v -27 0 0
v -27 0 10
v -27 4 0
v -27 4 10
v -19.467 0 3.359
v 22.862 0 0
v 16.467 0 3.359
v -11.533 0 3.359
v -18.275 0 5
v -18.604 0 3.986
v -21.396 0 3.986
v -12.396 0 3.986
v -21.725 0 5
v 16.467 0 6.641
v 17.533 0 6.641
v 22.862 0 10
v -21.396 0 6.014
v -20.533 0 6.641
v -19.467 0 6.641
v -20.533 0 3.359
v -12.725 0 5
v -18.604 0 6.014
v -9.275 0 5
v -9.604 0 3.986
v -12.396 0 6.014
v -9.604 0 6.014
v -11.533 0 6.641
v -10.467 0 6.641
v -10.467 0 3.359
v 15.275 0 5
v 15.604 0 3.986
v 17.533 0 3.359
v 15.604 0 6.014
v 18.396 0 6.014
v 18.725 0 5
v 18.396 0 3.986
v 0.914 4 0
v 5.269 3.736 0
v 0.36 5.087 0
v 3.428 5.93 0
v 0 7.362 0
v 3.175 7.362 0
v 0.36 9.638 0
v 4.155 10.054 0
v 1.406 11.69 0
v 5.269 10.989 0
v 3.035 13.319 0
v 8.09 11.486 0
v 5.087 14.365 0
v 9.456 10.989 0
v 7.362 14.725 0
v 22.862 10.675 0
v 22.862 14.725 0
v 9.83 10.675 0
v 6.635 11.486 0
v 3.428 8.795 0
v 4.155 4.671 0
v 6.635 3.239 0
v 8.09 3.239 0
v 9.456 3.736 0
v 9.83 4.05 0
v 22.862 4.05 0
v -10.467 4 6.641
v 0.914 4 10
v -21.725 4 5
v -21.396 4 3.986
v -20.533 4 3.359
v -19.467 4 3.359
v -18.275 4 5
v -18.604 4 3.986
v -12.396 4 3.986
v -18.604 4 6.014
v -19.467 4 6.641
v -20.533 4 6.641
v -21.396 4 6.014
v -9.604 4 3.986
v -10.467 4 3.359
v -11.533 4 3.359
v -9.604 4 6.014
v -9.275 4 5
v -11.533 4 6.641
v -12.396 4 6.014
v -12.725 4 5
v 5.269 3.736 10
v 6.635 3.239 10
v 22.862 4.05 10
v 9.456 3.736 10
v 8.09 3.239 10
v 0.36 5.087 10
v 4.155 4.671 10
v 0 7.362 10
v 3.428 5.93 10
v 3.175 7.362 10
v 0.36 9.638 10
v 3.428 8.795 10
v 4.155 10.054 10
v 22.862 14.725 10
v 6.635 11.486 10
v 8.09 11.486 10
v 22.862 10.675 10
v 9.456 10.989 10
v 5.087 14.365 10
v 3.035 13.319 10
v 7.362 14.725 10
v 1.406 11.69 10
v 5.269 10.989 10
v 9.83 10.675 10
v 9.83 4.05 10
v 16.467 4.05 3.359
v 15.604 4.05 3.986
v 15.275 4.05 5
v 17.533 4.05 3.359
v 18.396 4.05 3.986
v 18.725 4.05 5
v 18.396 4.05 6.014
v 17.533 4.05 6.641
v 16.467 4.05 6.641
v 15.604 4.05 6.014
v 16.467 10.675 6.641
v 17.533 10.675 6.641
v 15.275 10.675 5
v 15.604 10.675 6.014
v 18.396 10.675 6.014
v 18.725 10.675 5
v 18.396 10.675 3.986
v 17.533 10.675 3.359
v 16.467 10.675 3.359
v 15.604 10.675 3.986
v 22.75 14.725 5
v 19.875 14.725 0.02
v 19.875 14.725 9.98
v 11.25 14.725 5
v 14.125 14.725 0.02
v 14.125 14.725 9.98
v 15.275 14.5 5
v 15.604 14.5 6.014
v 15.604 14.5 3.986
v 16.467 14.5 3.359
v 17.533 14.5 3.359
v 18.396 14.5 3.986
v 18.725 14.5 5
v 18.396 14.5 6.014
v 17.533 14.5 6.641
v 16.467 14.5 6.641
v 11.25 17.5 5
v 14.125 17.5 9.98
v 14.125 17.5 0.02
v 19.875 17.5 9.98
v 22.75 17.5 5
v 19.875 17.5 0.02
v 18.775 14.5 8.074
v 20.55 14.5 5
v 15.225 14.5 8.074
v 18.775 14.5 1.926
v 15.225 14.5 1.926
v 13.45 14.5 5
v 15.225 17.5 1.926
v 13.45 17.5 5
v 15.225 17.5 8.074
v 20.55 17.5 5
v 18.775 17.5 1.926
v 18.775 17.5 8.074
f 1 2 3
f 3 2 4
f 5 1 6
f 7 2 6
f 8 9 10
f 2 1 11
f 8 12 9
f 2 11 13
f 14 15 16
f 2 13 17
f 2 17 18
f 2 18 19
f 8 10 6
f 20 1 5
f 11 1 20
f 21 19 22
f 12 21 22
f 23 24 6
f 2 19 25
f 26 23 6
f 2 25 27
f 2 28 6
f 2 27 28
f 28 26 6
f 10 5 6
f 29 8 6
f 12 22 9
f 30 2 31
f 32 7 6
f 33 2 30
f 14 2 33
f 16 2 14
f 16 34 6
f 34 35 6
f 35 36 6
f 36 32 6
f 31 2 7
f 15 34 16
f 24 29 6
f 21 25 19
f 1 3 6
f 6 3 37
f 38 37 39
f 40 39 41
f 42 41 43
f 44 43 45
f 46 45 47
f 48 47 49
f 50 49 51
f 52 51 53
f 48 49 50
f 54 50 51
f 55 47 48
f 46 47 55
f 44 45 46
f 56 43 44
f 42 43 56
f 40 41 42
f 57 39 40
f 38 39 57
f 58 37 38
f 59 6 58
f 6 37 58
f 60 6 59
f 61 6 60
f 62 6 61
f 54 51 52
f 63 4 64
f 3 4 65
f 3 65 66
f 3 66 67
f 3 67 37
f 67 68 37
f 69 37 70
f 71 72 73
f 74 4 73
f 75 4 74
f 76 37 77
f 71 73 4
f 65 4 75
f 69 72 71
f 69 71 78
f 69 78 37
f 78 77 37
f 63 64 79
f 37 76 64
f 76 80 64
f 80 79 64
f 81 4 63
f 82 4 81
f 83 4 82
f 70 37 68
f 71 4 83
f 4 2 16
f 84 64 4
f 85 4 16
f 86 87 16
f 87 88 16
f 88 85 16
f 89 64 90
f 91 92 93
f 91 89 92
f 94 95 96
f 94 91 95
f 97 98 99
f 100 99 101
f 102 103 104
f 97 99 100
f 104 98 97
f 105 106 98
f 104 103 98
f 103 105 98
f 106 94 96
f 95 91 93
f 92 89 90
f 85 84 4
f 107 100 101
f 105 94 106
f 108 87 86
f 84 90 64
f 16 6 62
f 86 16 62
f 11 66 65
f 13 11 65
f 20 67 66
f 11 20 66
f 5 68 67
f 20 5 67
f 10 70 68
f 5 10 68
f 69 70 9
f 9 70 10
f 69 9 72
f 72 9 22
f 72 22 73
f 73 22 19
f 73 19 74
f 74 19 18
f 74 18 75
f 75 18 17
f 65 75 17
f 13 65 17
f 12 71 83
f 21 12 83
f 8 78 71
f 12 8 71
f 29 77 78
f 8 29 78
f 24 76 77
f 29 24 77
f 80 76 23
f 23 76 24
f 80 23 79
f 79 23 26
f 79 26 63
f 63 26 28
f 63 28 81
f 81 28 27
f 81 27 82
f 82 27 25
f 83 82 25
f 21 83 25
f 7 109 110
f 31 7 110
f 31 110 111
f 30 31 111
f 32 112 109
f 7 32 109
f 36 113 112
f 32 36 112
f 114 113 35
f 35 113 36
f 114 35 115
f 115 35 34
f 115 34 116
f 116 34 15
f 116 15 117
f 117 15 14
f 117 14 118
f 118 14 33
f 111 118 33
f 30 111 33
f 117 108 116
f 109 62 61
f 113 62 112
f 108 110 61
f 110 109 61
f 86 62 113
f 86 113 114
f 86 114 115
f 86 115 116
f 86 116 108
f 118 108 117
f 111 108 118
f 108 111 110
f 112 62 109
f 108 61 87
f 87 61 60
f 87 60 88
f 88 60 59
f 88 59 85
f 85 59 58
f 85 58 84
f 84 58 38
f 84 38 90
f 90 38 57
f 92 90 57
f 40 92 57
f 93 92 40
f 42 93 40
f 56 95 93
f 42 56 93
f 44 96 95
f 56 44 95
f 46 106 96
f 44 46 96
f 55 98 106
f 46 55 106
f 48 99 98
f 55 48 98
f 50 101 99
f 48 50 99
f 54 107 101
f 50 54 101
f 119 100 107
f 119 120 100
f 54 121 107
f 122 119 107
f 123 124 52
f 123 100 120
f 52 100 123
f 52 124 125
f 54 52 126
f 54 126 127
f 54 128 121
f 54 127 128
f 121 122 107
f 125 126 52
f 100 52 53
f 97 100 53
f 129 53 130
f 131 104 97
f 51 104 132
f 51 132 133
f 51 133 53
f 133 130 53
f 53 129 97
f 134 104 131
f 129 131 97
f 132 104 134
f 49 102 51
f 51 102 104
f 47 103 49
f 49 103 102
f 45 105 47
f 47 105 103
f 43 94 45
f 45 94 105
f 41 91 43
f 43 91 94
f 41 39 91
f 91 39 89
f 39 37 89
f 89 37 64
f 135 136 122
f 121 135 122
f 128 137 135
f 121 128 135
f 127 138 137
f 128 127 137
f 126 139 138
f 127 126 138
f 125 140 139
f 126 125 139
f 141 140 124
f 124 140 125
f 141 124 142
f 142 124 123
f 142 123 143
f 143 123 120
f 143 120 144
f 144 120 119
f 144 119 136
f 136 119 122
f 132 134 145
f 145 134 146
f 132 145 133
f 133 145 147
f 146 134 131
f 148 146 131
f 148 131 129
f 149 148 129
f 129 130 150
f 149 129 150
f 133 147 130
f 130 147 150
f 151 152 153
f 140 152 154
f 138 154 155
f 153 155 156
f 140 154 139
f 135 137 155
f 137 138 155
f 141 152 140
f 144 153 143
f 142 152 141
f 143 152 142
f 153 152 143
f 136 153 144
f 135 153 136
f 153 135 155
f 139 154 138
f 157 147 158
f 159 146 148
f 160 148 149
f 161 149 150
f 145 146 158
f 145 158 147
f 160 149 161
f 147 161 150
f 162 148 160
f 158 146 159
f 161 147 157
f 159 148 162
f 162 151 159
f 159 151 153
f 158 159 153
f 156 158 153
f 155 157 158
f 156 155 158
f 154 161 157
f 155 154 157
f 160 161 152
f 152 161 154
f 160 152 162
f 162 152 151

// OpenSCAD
// file: functions.scad
// PRUSA Mendel  
// Functions used in many files
// GNU GPL v3
// Josef Průša
// josefprusa@me.com
// prusadjs.cz
// http://www.reprap.org/wiki/Prusa_Mendel
// http://github.com/prusajr/PrusaMendel


module nut(d,h,horizontal=true){
cornerdiameter =  (d / 2) / cos (180 / 6);
cylinder(h = h, r = cornerdiameter, $fn = 6);
if(horizontal){
for(i = [1:6]){
	rotate([0,0,60*i]) translate([-cornerdiameter-0.2,0,0]) rotate([0,0,-45]) cube(size = [2,2,h]);
}}
}

// Based on nophead research
module polyhole(d,h) {
    n = max(round(2 * d),3);
    rotate([0,0,180])
        cylinder(h = h, r = (d / 2) / cos (180 / n), $fn = n);
}




module roundcorner(diameter){
	difference(){
		cube(size = [diameter,diameter,99], center = false);
		translate(v = [diameter, diameter, 0]) cylinder(h = 100, r=diameter, center=true);
	}
}
// file: metric.scad
// PRUSA Mendel  
// Default metric sizes
// GNU GPL v2
// Josef Průša
// josefprusa@me.com
// prusadjs.cz
// http://www.reprap.org/wiki/Prusa_Mendel
// http://github.com/prusajr/PrusaMendel

// DONT CHANGE THIS FILE! ALTER VALUES IN CONFIGURATION.SCAD INSTEAD

// RODS

threaded_rod_diameter = 8.2;
threaded_rod_diameter_horizontal = 8.2;
smooth_bar_diameter = 8;
smooth_bar_diameter_horizontal = 8.5;

// Nuts and bolts

m8_diameter = 8.9;
m8_nut_diameter = 15.25;

m4_diameter = 4.5;
m4_nut_diameter = 9;

m3_diameter = 3.6;
m3_nut_diameter = 6.35;
m3_nut_heigth = 2.3;
m3_nut_wallDist = cos(30)*m3_nut_diameter;
m3_nut_diameter_horizontal = 6.1;

// Bushing holder

bushing_core_diameter = smooth_bar_diameter;
bushing_material_thickness = 1;

// Motors

motor_shaft = 5.5;
// file: configuration.scad
// PRUSA Mendel  
// Configuration file
// GNU GPL v3
// Josef Průša
// josefprusa@me.com
// prusadjs.cz
// http://www.reprap.org/wiki/Prusa_Mendel
// http://github.com/prusajr/PrusaMendel

// PLEASE SELECT ONE OF THE CONFIGURATIONS BELOW
// BY UN-COMMENTING IT

// Uncomment for metric settings
// METRIC METRIC METRIC METRIC METRIC METRIC METRIC METRIC 

include <metric.scad>;

// CUSTOM CUSTOM CUSTOM CUSTOM CUSTOM CUSTOM CUSTOM CUSTOM CUSTOM

thin_wall = 3;


// Linear bearing version
linear = true;
// set false for LM-8UU, true for LM-E-8UU (ignore if linear is set to false)
lme8uu = false;



// CHANGE ONLY THE STUFF YOU KNOW
// IT WILL REPLACE DEFAULT SETTING

// RODS
threaded_rod_diameter = 9.1;
threaded_rod_diameter_horizontal = 0;
// smooth_bar_diameter = 0;
// smooth_bar_diameter_horizontal = 0;

// Nuts and bolts

m8_diameter = 8.125;
m8_nut_diameter = 13;

m4_diameter = 4.5;
m4_nut_diameter = 8.1;

m3_diameter = 3.45;
m3_nut_diameter = 6.34;

motor_shaft = 5.65;

// Bushing holder

// bushing_core_diameter = smooth_bar_diameter;
// bushing_material_thickness = 0;


///counted stuff
m3_nut_diameter_bigger = ((m3_nut_diameter  / 2) / cos (180 / 6))*2;
//m3_nut_diameter = m3_nut_diameter_bigger;
// functions 
include <functions.scad>
// main file
// PRUSA Mendel  
// Endstop holder
// Used to attach endstops to 8mm rods
// GNU GPL v3
// Josef Průša
// josefprusa@me.com
// prusadjs.cz
// http://www.reprap.org/wiki/Prusa_Mendel
// http://github.com/prusajr/PrusaMendel

include <configuration.scad>

/**
 * @id endstop-holder
 * @name Endstop holder
 * @category Printed
 * @using 1 m3x20xhex
 * @using 1 m3nut
 * @using 2 m3washer
 */
module endstop(){
outer_diameter = m8_diameter/2+3.3;
screw_hole_spacing = 9;
opening_size = m8_diameter-1.5; //openingsize

difference(){
	union(){


		translate([outer_diameter, outer_diameter, 0]) cylinder(h =10, r = outer_diameter, $fn = 20);
		translate([outer_diameter, 0, 0]) cube([15.5,outer_diameter*2,10]);
		translate([-27, 0, 0]) cube([35, 4, 10]);
		translate([17, 17.5, 5]) rotate([90, 0, 0]) cylinder(h =5, r = 5.75, $fn = 6);
	}




	translate([9, outer_diameter-opening_size/2, 0]) #cube([18,opening_size,20]);
	translate([outer_diameter, outer_diameter, 0]) #cylinder(h =20, r = m8_diameter/2 + .125, $fn = 18);

	//Securing hole
	translate([17, 17, 5]) rotate([90, 0, 0]) #cylinder(h =20, r = m3_diameter/2, $fn = 10);
	translate([17, 19.5, 5]) rotate([90, 0, 0]) #cylinder(h =5, r = m3_nut_diameter_horizontal/2 + .5, $fn = 6);

	translate([17, 17, 5]) rotate([90, 0, 0]) #cylinder(h =20, r = m3_diameter/2, $fn = 10);
	translate([-11, 17, 5]) rotate([90, 0, 0]) #cylinder(h =20, r = m3_diameter/2, $fn = 10);
	translate([-(4+screw_hole_spacing)-7, 17, 5]) rotate([90, 0, 0]) #cylinder(h =20, r = m3_diameter/2, $fn = 10);
}
}
endstop();
